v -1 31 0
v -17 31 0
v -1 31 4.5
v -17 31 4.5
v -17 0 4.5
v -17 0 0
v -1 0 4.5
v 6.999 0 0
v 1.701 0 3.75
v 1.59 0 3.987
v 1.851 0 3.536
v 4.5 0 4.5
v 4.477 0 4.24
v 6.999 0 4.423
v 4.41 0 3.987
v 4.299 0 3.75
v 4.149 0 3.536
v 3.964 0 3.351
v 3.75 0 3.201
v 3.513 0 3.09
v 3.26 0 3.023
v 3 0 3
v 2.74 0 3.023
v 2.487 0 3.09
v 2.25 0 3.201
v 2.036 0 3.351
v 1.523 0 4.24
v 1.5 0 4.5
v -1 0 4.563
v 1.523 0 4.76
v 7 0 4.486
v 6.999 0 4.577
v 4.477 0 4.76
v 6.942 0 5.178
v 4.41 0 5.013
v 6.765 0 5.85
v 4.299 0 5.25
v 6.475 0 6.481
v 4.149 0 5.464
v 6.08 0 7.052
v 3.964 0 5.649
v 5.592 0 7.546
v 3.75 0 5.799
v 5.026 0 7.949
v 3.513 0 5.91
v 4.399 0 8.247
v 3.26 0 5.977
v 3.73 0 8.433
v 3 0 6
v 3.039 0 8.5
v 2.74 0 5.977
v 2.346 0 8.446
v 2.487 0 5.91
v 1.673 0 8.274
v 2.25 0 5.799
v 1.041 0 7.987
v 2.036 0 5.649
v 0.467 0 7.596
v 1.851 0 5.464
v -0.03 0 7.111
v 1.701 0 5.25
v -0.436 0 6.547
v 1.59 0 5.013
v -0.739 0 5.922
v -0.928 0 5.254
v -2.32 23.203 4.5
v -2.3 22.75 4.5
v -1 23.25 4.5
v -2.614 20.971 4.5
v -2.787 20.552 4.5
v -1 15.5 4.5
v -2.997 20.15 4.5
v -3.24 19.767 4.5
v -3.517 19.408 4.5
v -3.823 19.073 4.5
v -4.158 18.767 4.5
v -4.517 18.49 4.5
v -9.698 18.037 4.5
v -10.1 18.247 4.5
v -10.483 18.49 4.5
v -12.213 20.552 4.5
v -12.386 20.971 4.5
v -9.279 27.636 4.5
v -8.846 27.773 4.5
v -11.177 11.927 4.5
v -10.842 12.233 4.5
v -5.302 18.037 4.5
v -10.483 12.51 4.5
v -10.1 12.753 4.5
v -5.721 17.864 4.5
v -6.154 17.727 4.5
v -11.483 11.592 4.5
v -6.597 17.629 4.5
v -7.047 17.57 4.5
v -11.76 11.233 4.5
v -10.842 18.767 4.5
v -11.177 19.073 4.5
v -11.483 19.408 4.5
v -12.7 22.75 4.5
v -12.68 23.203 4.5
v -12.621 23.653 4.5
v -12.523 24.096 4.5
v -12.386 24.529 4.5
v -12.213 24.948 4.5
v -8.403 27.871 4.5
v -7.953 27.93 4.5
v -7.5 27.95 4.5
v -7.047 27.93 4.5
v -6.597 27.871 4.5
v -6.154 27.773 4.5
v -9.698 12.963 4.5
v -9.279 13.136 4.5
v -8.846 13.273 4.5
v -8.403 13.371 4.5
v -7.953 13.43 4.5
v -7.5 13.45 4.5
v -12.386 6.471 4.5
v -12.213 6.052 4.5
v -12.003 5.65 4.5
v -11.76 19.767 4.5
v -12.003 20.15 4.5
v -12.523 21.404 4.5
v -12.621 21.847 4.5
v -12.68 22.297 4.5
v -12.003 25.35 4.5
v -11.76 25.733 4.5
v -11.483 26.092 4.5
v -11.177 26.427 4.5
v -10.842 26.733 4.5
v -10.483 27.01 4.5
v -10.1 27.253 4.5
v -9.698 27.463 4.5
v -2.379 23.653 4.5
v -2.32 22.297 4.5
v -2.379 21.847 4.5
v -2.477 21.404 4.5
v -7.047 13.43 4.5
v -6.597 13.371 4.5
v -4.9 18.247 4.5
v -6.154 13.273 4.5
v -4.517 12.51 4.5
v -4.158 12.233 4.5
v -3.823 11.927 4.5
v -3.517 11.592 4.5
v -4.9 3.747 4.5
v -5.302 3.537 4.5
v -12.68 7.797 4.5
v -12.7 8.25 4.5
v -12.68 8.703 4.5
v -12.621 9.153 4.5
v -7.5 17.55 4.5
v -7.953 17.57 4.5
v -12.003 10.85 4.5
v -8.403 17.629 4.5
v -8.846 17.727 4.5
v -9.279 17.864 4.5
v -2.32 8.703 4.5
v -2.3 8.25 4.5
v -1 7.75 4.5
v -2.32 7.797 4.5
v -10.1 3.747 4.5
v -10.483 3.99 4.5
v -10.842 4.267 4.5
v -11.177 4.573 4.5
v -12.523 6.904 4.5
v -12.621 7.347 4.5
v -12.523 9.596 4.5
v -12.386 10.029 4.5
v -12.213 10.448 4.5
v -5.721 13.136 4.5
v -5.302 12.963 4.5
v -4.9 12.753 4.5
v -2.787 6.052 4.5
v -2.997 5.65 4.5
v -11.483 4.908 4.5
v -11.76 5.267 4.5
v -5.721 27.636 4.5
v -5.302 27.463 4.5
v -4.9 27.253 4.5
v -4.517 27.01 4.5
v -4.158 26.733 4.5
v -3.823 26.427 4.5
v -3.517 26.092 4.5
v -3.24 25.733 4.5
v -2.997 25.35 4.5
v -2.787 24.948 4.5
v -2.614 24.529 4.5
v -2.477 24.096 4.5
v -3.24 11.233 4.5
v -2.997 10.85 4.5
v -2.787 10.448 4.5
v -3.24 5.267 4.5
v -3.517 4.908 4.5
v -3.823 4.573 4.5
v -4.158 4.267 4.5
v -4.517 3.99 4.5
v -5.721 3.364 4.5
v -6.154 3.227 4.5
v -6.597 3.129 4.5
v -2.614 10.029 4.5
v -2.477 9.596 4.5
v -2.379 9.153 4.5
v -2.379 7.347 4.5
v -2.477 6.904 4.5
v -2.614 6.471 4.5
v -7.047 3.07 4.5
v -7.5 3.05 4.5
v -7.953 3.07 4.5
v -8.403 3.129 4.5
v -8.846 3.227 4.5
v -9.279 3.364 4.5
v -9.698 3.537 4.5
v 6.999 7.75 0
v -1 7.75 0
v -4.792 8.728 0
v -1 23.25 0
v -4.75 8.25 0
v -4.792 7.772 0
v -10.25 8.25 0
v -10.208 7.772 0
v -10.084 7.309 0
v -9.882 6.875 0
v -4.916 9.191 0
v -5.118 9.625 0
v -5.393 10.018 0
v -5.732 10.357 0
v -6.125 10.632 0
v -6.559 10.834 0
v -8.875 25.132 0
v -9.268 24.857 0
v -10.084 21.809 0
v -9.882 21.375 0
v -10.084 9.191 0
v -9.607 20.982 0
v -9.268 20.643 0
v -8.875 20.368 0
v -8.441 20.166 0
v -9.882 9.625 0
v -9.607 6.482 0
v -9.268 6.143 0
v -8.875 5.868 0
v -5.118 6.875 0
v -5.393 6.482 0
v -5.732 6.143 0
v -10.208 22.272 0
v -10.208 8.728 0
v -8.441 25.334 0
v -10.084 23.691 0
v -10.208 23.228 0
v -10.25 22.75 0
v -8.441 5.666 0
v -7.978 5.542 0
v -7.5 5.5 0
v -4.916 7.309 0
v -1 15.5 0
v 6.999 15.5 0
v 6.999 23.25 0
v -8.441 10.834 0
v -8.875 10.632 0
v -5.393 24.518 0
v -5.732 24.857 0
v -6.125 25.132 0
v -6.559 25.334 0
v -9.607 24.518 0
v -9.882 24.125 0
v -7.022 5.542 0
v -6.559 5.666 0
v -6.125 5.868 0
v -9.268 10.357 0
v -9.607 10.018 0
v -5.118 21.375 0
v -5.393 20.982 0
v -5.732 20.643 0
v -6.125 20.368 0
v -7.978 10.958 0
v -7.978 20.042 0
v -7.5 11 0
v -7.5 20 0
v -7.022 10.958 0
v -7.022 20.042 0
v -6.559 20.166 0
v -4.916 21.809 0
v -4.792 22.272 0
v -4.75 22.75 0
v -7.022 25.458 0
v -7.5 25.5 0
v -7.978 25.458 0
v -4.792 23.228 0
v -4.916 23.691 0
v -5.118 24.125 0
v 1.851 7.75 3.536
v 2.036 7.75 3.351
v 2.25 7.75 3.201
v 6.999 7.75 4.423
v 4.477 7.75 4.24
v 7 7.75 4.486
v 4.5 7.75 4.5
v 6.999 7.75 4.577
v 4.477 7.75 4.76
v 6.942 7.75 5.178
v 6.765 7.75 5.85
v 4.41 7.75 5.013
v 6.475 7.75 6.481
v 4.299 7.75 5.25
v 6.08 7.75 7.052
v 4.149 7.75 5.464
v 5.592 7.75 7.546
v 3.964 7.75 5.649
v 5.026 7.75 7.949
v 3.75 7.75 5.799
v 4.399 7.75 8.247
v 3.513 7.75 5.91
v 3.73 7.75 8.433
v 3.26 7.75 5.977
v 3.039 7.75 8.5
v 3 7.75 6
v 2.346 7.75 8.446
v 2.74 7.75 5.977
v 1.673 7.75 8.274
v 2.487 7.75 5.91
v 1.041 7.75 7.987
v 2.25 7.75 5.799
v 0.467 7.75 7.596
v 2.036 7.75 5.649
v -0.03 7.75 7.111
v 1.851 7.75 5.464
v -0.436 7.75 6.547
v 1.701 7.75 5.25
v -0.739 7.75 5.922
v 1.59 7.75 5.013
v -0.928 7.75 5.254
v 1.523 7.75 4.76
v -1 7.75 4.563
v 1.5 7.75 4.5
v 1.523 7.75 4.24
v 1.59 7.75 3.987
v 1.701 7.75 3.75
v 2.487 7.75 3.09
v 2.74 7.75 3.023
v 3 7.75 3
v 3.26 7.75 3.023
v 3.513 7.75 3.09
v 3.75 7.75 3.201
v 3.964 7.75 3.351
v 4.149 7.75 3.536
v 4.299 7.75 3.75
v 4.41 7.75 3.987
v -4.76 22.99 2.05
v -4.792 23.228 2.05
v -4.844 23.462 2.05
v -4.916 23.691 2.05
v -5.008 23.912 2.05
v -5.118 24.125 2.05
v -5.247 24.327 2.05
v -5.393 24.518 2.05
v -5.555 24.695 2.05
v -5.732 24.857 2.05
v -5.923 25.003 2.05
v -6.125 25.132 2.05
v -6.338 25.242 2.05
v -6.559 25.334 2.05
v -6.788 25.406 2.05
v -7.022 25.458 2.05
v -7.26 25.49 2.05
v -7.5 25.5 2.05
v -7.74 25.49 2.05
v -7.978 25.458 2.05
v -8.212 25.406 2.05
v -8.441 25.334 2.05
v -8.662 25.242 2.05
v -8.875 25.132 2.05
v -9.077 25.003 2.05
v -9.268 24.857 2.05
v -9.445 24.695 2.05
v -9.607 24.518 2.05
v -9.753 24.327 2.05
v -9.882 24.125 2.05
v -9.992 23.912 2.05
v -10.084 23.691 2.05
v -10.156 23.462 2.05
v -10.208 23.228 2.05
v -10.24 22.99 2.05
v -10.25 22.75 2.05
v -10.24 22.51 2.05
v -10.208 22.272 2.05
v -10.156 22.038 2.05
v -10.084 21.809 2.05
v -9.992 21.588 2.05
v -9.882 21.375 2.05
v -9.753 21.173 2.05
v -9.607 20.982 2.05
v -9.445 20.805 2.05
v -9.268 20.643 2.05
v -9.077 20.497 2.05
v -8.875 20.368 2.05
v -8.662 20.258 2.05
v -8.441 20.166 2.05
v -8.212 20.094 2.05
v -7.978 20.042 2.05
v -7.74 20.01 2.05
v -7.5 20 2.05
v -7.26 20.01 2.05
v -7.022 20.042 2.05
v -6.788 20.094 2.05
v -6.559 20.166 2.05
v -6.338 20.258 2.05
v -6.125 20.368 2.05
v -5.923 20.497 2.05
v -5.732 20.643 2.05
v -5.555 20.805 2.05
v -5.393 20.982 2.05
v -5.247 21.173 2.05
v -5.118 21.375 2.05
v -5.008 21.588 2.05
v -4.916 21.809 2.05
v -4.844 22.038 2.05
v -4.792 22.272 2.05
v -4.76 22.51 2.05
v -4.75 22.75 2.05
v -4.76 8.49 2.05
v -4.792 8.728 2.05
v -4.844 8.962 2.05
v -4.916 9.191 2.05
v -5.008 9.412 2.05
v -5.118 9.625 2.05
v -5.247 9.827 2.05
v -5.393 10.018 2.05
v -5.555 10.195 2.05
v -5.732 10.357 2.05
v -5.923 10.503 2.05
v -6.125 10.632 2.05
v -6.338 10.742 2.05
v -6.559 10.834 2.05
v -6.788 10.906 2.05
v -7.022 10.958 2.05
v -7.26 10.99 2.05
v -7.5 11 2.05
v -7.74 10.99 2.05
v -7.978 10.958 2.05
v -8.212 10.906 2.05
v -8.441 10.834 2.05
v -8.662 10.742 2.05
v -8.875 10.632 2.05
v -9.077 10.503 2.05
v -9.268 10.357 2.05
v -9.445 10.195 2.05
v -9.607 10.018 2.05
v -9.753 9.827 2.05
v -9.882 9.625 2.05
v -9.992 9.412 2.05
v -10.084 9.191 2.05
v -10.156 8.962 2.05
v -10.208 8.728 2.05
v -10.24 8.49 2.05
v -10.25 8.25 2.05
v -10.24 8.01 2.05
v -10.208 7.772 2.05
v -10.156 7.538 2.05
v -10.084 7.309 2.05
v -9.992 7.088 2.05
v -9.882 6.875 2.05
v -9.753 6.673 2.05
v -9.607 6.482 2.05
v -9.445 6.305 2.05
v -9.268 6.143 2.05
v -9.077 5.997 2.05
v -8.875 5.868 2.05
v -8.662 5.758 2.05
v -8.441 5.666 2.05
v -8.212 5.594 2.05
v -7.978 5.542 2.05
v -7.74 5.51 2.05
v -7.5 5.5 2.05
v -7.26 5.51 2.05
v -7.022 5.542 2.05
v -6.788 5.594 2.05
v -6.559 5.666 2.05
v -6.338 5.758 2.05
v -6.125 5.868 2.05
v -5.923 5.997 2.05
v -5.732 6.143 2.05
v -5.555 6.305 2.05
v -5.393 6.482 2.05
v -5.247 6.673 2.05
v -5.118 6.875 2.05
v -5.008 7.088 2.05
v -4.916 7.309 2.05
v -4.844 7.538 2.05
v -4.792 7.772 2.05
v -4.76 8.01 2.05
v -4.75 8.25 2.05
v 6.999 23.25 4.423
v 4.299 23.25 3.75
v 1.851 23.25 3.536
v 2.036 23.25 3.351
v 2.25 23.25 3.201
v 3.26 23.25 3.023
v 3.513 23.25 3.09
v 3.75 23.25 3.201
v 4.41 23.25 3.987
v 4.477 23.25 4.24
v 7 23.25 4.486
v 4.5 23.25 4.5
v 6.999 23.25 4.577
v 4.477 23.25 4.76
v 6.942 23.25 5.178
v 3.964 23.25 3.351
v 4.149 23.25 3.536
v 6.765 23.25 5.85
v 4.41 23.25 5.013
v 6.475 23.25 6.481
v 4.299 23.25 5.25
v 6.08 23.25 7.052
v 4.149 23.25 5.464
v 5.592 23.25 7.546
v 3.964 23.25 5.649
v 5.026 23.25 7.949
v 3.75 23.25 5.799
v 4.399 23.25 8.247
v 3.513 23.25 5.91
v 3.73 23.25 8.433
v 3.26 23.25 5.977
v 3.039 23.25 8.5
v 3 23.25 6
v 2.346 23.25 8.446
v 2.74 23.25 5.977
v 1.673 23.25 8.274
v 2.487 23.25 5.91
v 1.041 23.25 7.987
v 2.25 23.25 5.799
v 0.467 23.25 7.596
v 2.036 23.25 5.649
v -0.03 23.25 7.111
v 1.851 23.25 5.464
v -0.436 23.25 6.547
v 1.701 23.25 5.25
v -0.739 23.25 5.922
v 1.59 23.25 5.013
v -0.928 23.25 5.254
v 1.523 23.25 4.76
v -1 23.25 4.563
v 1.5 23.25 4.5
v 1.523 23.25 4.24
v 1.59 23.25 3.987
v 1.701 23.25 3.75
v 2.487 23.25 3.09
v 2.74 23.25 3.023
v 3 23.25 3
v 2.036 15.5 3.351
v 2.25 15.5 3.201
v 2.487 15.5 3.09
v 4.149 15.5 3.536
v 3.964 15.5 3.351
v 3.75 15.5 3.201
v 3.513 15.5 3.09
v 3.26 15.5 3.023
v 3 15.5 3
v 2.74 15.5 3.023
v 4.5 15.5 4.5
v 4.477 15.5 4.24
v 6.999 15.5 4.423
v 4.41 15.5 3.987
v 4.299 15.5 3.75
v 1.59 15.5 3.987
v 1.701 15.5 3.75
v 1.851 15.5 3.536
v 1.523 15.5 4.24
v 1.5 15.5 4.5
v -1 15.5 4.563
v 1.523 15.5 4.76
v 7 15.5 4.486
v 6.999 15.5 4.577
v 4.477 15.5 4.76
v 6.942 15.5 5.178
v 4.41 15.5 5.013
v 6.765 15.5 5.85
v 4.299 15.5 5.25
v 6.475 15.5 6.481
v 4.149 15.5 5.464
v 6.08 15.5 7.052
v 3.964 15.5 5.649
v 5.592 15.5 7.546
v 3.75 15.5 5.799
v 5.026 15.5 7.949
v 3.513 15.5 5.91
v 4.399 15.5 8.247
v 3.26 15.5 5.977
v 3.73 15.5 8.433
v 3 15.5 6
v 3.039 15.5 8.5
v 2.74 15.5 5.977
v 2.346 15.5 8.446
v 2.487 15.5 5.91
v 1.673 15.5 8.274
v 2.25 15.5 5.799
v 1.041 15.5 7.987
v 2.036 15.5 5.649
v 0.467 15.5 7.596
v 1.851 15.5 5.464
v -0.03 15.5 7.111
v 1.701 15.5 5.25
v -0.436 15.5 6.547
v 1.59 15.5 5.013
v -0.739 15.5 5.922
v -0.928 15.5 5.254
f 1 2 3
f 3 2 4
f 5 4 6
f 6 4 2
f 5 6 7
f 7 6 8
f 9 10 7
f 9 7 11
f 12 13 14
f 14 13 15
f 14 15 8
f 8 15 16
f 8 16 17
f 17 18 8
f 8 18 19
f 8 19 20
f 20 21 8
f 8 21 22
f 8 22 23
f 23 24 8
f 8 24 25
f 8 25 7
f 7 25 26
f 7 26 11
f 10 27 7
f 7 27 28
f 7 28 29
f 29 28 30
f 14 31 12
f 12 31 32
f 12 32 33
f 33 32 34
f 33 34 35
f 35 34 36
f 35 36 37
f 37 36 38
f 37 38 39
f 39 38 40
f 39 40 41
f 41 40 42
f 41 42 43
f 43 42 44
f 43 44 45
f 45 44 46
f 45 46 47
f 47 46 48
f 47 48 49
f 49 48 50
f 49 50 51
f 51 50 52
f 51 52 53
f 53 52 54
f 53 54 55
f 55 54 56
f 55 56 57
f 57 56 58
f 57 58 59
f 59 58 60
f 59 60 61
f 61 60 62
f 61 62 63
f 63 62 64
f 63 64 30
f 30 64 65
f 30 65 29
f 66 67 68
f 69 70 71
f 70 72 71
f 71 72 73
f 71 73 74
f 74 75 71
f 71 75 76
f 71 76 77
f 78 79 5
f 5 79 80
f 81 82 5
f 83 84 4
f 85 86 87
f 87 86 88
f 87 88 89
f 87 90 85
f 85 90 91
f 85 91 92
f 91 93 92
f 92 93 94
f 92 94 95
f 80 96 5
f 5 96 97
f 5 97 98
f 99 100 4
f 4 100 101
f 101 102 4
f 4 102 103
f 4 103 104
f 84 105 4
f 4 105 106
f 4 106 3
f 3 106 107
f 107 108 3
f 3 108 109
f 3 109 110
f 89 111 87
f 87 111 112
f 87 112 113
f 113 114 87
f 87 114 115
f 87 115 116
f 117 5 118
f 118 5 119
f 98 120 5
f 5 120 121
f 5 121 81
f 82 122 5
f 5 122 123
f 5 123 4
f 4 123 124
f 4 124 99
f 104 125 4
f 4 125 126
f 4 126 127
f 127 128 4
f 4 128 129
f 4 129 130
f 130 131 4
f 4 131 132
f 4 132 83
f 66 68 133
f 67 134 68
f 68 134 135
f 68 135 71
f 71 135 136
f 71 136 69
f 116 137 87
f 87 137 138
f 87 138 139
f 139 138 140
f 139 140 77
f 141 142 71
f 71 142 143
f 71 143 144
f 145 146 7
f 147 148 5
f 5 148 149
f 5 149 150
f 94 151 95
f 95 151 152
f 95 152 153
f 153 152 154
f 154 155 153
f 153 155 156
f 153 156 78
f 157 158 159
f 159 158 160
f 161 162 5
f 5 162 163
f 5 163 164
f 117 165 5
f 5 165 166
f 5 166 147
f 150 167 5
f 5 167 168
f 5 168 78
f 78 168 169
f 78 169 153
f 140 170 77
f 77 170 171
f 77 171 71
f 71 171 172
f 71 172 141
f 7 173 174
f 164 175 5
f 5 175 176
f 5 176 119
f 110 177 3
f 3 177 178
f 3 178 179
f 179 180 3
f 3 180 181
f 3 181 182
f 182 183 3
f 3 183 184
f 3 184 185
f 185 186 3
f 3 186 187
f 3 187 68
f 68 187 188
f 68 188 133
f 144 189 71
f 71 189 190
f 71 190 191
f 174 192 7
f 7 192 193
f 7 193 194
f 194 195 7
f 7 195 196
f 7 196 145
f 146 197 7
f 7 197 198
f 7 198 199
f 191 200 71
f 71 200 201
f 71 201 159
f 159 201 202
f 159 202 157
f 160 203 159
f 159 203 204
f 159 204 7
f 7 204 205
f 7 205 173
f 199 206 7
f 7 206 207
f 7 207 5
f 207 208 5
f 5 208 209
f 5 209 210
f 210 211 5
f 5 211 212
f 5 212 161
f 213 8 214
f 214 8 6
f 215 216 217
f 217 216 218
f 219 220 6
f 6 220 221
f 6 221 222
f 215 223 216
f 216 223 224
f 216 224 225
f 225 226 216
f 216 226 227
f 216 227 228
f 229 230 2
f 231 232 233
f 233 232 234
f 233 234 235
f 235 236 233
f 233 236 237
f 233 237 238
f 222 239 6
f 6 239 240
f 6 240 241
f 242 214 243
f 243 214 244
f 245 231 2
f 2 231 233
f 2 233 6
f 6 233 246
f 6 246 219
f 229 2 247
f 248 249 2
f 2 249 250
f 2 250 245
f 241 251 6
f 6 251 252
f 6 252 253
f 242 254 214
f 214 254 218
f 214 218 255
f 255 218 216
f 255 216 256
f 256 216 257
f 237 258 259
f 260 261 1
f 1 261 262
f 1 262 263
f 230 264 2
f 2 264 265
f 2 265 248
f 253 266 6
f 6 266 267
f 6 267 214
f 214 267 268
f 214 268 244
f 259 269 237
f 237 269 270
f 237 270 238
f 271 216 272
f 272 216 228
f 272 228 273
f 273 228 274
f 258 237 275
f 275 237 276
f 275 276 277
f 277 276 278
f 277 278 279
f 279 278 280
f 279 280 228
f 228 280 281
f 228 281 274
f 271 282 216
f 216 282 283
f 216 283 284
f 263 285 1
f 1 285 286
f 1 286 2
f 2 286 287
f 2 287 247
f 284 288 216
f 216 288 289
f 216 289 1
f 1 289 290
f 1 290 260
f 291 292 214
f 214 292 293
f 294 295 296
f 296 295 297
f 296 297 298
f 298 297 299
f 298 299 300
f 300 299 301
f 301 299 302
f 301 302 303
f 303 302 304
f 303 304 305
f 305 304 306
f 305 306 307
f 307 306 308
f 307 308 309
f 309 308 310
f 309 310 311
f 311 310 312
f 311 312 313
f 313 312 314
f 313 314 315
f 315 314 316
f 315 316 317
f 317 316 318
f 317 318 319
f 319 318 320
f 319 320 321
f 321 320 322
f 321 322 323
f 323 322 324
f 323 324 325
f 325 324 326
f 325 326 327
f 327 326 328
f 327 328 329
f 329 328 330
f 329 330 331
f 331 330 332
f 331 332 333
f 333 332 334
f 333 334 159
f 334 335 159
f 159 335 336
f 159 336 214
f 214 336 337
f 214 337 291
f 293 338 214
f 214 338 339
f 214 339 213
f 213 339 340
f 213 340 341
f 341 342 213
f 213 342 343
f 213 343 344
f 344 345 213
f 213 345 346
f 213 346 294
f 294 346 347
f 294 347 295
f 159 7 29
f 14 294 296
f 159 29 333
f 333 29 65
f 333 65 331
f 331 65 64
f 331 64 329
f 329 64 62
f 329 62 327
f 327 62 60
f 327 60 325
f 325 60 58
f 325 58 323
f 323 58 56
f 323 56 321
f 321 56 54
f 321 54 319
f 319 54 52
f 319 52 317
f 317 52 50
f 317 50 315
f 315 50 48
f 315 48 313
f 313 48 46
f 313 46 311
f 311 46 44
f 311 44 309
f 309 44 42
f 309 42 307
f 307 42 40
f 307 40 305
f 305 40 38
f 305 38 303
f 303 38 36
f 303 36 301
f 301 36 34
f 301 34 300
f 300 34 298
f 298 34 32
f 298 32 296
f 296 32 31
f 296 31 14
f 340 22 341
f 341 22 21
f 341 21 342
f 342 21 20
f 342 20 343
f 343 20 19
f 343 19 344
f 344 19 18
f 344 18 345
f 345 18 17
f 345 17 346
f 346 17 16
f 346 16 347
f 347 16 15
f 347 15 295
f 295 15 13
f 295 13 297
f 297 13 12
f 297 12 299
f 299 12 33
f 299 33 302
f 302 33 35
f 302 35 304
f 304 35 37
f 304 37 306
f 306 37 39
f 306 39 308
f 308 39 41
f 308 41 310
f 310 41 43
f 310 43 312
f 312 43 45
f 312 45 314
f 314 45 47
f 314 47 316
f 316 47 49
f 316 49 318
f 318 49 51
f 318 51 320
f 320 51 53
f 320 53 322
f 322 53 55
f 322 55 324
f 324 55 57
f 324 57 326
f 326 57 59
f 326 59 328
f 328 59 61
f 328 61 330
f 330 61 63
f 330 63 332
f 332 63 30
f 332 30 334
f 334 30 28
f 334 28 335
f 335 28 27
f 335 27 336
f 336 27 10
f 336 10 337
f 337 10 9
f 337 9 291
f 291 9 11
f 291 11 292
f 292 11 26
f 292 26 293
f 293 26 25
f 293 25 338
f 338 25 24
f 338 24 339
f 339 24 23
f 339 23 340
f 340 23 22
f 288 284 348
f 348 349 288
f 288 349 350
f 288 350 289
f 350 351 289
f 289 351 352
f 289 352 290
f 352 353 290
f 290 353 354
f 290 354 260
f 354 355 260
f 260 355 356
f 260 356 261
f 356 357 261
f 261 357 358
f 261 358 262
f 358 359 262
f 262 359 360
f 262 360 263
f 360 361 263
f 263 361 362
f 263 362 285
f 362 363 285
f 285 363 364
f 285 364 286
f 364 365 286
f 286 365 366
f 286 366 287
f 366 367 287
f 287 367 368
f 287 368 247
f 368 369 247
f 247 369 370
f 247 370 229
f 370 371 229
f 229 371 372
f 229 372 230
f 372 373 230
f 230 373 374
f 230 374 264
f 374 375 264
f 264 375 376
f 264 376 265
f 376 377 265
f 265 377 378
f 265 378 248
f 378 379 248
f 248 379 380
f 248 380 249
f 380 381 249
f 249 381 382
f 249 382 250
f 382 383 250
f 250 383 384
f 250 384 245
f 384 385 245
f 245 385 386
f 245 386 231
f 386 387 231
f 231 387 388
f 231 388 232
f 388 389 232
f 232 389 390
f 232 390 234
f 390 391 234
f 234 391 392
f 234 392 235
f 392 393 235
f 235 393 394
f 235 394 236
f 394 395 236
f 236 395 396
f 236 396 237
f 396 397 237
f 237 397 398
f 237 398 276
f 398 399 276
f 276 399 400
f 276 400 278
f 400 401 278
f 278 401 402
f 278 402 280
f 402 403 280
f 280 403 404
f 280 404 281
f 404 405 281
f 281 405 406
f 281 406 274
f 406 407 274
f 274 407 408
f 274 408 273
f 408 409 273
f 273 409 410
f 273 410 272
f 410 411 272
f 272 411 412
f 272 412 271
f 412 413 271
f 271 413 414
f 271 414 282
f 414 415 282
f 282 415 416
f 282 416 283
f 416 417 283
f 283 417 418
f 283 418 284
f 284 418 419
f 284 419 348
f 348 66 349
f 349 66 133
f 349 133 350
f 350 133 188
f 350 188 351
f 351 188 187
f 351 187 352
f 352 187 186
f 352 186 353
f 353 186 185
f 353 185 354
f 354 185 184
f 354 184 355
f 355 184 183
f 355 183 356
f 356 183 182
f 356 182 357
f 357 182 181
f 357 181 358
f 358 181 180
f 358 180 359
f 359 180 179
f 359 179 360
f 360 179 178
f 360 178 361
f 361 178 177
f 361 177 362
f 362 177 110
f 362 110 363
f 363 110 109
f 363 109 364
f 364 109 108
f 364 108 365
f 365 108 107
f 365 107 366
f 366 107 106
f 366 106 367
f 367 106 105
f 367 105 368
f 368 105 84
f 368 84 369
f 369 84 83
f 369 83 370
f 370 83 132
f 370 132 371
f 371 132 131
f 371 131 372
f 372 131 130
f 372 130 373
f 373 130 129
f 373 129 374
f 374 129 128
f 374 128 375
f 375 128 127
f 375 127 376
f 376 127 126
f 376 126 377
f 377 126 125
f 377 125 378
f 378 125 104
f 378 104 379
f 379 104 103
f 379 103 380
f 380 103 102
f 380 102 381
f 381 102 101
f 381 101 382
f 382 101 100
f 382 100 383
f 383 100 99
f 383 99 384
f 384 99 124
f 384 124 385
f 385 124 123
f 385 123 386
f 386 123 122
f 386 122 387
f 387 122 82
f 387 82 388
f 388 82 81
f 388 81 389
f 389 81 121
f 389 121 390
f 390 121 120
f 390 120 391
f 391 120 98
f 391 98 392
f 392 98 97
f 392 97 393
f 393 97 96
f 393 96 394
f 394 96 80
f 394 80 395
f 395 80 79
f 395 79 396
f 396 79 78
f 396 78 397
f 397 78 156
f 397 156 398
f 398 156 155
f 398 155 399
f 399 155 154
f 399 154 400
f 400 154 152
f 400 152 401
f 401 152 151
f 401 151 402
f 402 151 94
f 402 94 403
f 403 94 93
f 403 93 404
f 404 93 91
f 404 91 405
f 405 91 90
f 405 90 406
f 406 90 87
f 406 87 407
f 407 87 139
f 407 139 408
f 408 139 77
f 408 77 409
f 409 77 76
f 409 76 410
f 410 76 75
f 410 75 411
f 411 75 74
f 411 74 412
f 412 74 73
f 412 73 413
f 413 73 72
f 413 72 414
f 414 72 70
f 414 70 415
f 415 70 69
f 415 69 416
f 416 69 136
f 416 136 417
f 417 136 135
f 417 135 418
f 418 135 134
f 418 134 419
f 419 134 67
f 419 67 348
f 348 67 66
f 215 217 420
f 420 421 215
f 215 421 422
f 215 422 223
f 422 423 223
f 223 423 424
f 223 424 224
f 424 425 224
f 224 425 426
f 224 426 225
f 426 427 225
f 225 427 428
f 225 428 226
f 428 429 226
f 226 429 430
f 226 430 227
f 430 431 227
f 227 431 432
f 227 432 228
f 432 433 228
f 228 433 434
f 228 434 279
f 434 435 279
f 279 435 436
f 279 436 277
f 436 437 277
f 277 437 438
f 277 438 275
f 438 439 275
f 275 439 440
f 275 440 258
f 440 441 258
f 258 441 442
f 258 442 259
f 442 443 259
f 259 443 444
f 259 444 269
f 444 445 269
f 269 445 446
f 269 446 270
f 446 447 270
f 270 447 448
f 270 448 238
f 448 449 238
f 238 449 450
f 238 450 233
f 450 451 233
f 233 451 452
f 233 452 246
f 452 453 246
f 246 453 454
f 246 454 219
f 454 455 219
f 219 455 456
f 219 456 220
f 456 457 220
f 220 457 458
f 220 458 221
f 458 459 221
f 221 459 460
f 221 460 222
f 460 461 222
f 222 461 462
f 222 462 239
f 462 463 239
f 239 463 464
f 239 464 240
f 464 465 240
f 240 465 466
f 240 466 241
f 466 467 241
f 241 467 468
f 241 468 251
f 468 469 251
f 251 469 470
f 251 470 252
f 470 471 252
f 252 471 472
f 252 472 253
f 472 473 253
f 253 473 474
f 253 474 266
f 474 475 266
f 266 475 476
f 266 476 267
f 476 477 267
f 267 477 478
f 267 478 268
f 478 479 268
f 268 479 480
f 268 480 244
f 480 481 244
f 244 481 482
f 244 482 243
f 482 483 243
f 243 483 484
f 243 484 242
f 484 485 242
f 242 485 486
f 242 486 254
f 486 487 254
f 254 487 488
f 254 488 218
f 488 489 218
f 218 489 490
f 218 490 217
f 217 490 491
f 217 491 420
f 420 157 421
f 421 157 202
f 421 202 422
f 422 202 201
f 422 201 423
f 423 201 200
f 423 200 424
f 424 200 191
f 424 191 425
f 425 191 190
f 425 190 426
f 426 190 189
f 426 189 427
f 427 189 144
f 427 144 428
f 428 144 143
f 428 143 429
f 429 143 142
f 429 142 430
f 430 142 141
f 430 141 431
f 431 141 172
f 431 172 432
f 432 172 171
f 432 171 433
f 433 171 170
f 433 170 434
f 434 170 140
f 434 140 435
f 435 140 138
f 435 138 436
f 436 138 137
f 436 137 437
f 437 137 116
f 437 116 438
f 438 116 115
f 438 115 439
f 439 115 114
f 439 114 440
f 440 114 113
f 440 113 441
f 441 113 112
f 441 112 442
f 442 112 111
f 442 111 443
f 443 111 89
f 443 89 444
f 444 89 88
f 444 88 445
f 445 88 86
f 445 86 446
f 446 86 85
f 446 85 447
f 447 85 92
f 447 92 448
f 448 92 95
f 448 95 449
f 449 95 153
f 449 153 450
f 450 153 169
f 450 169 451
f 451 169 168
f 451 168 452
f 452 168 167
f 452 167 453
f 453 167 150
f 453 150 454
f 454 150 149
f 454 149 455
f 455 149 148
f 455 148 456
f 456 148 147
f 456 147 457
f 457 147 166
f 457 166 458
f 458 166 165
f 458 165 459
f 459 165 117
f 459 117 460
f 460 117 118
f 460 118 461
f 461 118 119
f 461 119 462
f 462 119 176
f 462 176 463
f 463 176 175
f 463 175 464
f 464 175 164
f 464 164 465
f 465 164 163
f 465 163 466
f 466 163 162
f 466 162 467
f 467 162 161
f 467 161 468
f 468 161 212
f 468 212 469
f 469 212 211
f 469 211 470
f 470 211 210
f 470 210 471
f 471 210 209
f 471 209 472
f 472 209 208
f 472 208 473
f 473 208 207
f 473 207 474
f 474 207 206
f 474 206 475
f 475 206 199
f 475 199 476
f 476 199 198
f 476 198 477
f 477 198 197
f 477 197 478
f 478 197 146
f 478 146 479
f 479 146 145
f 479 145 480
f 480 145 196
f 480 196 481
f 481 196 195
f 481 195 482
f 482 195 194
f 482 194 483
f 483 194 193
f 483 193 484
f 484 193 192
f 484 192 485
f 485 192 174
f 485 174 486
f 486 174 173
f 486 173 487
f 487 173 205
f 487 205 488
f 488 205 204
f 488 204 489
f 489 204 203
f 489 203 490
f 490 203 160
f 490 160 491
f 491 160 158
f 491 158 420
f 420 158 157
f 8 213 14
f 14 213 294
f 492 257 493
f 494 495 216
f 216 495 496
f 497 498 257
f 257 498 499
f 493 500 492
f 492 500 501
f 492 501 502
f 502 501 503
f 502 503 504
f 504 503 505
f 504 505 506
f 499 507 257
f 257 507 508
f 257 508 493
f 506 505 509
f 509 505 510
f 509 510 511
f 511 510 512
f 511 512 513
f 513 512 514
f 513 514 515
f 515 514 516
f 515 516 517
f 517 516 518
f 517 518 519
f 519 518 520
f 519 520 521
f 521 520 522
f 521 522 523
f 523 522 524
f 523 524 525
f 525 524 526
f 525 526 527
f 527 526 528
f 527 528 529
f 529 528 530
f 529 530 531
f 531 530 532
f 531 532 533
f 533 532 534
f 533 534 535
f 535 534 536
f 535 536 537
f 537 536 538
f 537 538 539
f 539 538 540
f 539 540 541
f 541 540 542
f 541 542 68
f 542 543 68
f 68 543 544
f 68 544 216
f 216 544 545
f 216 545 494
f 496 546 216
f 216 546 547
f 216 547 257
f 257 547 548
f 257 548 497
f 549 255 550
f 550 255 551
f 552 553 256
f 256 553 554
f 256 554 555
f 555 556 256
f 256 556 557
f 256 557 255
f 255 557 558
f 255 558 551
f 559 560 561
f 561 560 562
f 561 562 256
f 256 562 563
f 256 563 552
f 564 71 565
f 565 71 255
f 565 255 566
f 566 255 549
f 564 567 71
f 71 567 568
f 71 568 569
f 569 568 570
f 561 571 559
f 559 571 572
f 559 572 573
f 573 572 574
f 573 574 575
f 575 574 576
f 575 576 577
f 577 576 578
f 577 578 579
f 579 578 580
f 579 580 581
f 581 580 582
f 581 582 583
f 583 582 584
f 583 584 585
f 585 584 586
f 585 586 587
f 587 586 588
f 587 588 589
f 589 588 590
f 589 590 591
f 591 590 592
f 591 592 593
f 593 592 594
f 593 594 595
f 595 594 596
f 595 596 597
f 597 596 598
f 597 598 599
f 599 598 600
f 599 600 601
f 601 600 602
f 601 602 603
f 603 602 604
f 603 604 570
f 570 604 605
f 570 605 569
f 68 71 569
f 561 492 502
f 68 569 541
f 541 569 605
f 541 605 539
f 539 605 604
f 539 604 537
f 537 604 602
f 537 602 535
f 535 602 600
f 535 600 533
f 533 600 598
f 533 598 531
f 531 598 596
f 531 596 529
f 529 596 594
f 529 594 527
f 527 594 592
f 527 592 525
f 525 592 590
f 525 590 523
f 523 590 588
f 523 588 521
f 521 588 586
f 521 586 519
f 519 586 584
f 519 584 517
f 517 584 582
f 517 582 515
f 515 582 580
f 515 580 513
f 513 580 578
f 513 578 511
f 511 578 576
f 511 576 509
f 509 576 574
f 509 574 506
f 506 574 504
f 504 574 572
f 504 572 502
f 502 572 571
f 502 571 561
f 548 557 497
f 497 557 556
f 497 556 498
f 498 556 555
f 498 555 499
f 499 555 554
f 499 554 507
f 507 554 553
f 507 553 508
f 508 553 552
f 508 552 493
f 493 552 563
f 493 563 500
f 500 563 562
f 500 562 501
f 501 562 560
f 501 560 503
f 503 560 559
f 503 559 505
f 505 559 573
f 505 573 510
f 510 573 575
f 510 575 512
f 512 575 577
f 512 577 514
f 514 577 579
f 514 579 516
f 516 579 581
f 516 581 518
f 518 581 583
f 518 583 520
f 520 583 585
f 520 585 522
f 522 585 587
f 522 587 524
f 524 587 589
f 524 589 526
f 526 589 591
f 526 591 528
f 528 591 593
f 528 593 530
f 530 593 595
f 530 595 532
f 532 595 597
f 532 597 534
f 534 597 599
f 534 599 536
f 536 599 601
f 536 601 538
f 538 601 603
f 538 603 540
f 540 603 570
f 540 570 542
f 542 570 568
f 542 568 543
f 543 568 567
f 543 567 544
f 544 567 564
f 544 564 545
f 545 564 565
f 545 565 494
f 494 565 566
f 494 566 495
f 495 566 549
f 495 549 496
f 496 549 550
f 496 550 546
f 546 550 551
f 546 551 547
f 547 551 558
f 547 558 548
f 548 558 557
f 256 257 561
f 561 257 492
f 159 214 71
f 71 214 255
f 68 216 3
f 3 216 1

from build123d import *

# Parameters (mm, degrees)
SKETCH1_W                                      = 17
SKETCH1_H                                      = 31
BOSS_EXTRUDE1_DEPTH                            = 4.5
SKETCH2_R                                      = 4
SKETCH2_R_2                                    = 1.5
BOSS_EXTRUDE2_DEPTH                            = 7.75
FILLET2_R                                      = 15
CSK_FOR_M5_FLAT_HEAD_MACHINE_SCREW1_AT_2_COUNT = 2
CSK_FOR_M5_FLAT_HEAD_MACHINE_SCREW1_AT_2_PITCH = 14.5
BOSS_EXTRUDE4_DEPTH                            = 7.75
LPATTERN1_START                                = 15.5
LPATTERN1_OUTLINE_R                            = 1.5
LPATTERN1_DEPTH                                = 7.75
SKETCH7_W                                      = 1
SKETCH7_H                                      = 7.75
CUT_EXTRUDE1_DEPTH                             = 36.640566774


# Read off the part's stored shape, not the designer's step: LPattern1
with BuildPart() as part:
    # Sketch1 → Boss-Extrude1 (new body)
    with BuildSketch(Plane.XY):
        with Locations((-8.5, 15.5)):
            Rectangle(SKETCH1_W, SKETCH1_H)
    extrude(amount=BOSS_EXTRUDE1_DEPTH)

    # Sketch2 → Boss-Extrude2 (add)
    with BuildSketch(Plane(origin=(0, 0, 0), x_dir=(1, 0, 0), z_dir=(0, 1, 0))):
        with Locations((3, -4.5)):
            Circle(SKETCH2_R)
        with Locations(Location((3, -4.5, 0), (0, 0, 270))):
            Circle(SKETCH2_R_2, mode=Mode.SUBTRACT)
    extrude(amount=BOSS_EXTRUDE2_DEPTH)

    # Fillet2
    # the kernel refuses this fillet: 15 mm, written as the material it adds along each edge
    with BuildSketch(Plane(origin=(0, 7.75, 1.854248689), x_dir=(0.9211814219318991, 0, -0.389133380587588), z_dir=(0, -1, 0))) as fillet2_piece_1:
        with BuildLine():
            CenterArc((9.970466155, -13.517314112), FILLET2_R, 115.689791336, 12.37807292)
            Line((0.721550061, -1.708099444), (0.536571739, -1.471915151))
            ThreePointArc((0.536571739, -1.471915151), (0.084420604, -0.970789736), (-0.276354427, -0.116740014))
            Line((-0.276354427, -0.116740014), (0.130049559, 0.270346282))
            ThreePointArc((0.130049559, 0.270346282), (1.733994114, -0.095382903), (3.337938669, 0.270346282))
            Line((3.337938669, 0.270346282), (3.467988228, 0))
        make_face()
    extrude(amount=7.75)

    # Sketch4 → CSK for M5 Flat Head Machine Screw1 (revolve, cut)
    with BuildSketch(Plane(origin=(-7.5, 8.25, 4.5), x_dir=(0, -1, 0), z_dir=(1, 0, 0))):
        Polygon((0, 0), (0, 4.5), (2.75, 4.5), (2.75, 2.45), (5.2, 0), align=None)
    csk_for_m5_flat_head_machine_screw1 = revolve(axis=Axis((-7.5, 8.25, 10.85), (0, 0, -1)), mode=Mode.SUBTRACT)

    # CSK for M5 Flat Head Machine Screw1 at 2: CSK for M5 Flat Head Machine Screw1 ×2
    with Locations(*[(0, i * CSK_FOR_M5_FLAT_HEAD_MACHINE_SCREW1_AT_2_PITCH, 0) for i in range(1, CSK_FOR_M5_FLAT_HEAD_MACHINE_SCREW1_AT_2_COUNT)]):
        add(csk_for_m5_flat_head_machine_screw1, mode=Mode.SUBTRACT)

    # Sketch6 → Boss-Extrude4 (add)
    with BuildSketch(Plane.XZ):
        Polygon((0, 0), (6.999251024, 0), (6.999251024, 4.577403122), align=None)
    extrude(amount=-BOSS_EXTRUDE4_DEPTH)

    # LPattern1 outline → LPattern1 (add)
    with BuildSketch(Plane(origin=(0, 0, 0), x_dir=(1, 0, 0), z_dir=(0, 1, 0)).offset(LPATTERN1_START)):
        with BuildLine():
            Line((6.999251024, 0), (0, 0))
            Line((0, 0), (0, -4.5))
            Line((0, -4.5), (-1, -4.5))
            ThreePointArc((-1, -4.5), (3.038703373, -8.499812752), (6.999251024, -4.422596878))
            Line((6.999251024, -4.422596878), (6.999251024, 0))
        make_face()
        with Locations((3, -4.5)):
            Circle(LPATTERN1_OUTLINE_R, mode=Mode.SUBTRACT)
    extrude(amount=LPATTERN1_DEPTH)

    # Sketch7 → Cut-Extrude1 (cut, through all)
    with BuildSketch(Plane.XY.offset(4.5)):
        with Locations((-0.5, 11.625)):
            Rectangle(SKETCH7_W, SKETCH7_H)
        with Locations((-0.5, 27.125)):
            Rectangle(SKETCH7_W, SKETCH7_H)
    extrude(amount=-CUT_EXTRUDE1_DEPTH, mode=Mode.SUBTRACT)


solid = part.part
